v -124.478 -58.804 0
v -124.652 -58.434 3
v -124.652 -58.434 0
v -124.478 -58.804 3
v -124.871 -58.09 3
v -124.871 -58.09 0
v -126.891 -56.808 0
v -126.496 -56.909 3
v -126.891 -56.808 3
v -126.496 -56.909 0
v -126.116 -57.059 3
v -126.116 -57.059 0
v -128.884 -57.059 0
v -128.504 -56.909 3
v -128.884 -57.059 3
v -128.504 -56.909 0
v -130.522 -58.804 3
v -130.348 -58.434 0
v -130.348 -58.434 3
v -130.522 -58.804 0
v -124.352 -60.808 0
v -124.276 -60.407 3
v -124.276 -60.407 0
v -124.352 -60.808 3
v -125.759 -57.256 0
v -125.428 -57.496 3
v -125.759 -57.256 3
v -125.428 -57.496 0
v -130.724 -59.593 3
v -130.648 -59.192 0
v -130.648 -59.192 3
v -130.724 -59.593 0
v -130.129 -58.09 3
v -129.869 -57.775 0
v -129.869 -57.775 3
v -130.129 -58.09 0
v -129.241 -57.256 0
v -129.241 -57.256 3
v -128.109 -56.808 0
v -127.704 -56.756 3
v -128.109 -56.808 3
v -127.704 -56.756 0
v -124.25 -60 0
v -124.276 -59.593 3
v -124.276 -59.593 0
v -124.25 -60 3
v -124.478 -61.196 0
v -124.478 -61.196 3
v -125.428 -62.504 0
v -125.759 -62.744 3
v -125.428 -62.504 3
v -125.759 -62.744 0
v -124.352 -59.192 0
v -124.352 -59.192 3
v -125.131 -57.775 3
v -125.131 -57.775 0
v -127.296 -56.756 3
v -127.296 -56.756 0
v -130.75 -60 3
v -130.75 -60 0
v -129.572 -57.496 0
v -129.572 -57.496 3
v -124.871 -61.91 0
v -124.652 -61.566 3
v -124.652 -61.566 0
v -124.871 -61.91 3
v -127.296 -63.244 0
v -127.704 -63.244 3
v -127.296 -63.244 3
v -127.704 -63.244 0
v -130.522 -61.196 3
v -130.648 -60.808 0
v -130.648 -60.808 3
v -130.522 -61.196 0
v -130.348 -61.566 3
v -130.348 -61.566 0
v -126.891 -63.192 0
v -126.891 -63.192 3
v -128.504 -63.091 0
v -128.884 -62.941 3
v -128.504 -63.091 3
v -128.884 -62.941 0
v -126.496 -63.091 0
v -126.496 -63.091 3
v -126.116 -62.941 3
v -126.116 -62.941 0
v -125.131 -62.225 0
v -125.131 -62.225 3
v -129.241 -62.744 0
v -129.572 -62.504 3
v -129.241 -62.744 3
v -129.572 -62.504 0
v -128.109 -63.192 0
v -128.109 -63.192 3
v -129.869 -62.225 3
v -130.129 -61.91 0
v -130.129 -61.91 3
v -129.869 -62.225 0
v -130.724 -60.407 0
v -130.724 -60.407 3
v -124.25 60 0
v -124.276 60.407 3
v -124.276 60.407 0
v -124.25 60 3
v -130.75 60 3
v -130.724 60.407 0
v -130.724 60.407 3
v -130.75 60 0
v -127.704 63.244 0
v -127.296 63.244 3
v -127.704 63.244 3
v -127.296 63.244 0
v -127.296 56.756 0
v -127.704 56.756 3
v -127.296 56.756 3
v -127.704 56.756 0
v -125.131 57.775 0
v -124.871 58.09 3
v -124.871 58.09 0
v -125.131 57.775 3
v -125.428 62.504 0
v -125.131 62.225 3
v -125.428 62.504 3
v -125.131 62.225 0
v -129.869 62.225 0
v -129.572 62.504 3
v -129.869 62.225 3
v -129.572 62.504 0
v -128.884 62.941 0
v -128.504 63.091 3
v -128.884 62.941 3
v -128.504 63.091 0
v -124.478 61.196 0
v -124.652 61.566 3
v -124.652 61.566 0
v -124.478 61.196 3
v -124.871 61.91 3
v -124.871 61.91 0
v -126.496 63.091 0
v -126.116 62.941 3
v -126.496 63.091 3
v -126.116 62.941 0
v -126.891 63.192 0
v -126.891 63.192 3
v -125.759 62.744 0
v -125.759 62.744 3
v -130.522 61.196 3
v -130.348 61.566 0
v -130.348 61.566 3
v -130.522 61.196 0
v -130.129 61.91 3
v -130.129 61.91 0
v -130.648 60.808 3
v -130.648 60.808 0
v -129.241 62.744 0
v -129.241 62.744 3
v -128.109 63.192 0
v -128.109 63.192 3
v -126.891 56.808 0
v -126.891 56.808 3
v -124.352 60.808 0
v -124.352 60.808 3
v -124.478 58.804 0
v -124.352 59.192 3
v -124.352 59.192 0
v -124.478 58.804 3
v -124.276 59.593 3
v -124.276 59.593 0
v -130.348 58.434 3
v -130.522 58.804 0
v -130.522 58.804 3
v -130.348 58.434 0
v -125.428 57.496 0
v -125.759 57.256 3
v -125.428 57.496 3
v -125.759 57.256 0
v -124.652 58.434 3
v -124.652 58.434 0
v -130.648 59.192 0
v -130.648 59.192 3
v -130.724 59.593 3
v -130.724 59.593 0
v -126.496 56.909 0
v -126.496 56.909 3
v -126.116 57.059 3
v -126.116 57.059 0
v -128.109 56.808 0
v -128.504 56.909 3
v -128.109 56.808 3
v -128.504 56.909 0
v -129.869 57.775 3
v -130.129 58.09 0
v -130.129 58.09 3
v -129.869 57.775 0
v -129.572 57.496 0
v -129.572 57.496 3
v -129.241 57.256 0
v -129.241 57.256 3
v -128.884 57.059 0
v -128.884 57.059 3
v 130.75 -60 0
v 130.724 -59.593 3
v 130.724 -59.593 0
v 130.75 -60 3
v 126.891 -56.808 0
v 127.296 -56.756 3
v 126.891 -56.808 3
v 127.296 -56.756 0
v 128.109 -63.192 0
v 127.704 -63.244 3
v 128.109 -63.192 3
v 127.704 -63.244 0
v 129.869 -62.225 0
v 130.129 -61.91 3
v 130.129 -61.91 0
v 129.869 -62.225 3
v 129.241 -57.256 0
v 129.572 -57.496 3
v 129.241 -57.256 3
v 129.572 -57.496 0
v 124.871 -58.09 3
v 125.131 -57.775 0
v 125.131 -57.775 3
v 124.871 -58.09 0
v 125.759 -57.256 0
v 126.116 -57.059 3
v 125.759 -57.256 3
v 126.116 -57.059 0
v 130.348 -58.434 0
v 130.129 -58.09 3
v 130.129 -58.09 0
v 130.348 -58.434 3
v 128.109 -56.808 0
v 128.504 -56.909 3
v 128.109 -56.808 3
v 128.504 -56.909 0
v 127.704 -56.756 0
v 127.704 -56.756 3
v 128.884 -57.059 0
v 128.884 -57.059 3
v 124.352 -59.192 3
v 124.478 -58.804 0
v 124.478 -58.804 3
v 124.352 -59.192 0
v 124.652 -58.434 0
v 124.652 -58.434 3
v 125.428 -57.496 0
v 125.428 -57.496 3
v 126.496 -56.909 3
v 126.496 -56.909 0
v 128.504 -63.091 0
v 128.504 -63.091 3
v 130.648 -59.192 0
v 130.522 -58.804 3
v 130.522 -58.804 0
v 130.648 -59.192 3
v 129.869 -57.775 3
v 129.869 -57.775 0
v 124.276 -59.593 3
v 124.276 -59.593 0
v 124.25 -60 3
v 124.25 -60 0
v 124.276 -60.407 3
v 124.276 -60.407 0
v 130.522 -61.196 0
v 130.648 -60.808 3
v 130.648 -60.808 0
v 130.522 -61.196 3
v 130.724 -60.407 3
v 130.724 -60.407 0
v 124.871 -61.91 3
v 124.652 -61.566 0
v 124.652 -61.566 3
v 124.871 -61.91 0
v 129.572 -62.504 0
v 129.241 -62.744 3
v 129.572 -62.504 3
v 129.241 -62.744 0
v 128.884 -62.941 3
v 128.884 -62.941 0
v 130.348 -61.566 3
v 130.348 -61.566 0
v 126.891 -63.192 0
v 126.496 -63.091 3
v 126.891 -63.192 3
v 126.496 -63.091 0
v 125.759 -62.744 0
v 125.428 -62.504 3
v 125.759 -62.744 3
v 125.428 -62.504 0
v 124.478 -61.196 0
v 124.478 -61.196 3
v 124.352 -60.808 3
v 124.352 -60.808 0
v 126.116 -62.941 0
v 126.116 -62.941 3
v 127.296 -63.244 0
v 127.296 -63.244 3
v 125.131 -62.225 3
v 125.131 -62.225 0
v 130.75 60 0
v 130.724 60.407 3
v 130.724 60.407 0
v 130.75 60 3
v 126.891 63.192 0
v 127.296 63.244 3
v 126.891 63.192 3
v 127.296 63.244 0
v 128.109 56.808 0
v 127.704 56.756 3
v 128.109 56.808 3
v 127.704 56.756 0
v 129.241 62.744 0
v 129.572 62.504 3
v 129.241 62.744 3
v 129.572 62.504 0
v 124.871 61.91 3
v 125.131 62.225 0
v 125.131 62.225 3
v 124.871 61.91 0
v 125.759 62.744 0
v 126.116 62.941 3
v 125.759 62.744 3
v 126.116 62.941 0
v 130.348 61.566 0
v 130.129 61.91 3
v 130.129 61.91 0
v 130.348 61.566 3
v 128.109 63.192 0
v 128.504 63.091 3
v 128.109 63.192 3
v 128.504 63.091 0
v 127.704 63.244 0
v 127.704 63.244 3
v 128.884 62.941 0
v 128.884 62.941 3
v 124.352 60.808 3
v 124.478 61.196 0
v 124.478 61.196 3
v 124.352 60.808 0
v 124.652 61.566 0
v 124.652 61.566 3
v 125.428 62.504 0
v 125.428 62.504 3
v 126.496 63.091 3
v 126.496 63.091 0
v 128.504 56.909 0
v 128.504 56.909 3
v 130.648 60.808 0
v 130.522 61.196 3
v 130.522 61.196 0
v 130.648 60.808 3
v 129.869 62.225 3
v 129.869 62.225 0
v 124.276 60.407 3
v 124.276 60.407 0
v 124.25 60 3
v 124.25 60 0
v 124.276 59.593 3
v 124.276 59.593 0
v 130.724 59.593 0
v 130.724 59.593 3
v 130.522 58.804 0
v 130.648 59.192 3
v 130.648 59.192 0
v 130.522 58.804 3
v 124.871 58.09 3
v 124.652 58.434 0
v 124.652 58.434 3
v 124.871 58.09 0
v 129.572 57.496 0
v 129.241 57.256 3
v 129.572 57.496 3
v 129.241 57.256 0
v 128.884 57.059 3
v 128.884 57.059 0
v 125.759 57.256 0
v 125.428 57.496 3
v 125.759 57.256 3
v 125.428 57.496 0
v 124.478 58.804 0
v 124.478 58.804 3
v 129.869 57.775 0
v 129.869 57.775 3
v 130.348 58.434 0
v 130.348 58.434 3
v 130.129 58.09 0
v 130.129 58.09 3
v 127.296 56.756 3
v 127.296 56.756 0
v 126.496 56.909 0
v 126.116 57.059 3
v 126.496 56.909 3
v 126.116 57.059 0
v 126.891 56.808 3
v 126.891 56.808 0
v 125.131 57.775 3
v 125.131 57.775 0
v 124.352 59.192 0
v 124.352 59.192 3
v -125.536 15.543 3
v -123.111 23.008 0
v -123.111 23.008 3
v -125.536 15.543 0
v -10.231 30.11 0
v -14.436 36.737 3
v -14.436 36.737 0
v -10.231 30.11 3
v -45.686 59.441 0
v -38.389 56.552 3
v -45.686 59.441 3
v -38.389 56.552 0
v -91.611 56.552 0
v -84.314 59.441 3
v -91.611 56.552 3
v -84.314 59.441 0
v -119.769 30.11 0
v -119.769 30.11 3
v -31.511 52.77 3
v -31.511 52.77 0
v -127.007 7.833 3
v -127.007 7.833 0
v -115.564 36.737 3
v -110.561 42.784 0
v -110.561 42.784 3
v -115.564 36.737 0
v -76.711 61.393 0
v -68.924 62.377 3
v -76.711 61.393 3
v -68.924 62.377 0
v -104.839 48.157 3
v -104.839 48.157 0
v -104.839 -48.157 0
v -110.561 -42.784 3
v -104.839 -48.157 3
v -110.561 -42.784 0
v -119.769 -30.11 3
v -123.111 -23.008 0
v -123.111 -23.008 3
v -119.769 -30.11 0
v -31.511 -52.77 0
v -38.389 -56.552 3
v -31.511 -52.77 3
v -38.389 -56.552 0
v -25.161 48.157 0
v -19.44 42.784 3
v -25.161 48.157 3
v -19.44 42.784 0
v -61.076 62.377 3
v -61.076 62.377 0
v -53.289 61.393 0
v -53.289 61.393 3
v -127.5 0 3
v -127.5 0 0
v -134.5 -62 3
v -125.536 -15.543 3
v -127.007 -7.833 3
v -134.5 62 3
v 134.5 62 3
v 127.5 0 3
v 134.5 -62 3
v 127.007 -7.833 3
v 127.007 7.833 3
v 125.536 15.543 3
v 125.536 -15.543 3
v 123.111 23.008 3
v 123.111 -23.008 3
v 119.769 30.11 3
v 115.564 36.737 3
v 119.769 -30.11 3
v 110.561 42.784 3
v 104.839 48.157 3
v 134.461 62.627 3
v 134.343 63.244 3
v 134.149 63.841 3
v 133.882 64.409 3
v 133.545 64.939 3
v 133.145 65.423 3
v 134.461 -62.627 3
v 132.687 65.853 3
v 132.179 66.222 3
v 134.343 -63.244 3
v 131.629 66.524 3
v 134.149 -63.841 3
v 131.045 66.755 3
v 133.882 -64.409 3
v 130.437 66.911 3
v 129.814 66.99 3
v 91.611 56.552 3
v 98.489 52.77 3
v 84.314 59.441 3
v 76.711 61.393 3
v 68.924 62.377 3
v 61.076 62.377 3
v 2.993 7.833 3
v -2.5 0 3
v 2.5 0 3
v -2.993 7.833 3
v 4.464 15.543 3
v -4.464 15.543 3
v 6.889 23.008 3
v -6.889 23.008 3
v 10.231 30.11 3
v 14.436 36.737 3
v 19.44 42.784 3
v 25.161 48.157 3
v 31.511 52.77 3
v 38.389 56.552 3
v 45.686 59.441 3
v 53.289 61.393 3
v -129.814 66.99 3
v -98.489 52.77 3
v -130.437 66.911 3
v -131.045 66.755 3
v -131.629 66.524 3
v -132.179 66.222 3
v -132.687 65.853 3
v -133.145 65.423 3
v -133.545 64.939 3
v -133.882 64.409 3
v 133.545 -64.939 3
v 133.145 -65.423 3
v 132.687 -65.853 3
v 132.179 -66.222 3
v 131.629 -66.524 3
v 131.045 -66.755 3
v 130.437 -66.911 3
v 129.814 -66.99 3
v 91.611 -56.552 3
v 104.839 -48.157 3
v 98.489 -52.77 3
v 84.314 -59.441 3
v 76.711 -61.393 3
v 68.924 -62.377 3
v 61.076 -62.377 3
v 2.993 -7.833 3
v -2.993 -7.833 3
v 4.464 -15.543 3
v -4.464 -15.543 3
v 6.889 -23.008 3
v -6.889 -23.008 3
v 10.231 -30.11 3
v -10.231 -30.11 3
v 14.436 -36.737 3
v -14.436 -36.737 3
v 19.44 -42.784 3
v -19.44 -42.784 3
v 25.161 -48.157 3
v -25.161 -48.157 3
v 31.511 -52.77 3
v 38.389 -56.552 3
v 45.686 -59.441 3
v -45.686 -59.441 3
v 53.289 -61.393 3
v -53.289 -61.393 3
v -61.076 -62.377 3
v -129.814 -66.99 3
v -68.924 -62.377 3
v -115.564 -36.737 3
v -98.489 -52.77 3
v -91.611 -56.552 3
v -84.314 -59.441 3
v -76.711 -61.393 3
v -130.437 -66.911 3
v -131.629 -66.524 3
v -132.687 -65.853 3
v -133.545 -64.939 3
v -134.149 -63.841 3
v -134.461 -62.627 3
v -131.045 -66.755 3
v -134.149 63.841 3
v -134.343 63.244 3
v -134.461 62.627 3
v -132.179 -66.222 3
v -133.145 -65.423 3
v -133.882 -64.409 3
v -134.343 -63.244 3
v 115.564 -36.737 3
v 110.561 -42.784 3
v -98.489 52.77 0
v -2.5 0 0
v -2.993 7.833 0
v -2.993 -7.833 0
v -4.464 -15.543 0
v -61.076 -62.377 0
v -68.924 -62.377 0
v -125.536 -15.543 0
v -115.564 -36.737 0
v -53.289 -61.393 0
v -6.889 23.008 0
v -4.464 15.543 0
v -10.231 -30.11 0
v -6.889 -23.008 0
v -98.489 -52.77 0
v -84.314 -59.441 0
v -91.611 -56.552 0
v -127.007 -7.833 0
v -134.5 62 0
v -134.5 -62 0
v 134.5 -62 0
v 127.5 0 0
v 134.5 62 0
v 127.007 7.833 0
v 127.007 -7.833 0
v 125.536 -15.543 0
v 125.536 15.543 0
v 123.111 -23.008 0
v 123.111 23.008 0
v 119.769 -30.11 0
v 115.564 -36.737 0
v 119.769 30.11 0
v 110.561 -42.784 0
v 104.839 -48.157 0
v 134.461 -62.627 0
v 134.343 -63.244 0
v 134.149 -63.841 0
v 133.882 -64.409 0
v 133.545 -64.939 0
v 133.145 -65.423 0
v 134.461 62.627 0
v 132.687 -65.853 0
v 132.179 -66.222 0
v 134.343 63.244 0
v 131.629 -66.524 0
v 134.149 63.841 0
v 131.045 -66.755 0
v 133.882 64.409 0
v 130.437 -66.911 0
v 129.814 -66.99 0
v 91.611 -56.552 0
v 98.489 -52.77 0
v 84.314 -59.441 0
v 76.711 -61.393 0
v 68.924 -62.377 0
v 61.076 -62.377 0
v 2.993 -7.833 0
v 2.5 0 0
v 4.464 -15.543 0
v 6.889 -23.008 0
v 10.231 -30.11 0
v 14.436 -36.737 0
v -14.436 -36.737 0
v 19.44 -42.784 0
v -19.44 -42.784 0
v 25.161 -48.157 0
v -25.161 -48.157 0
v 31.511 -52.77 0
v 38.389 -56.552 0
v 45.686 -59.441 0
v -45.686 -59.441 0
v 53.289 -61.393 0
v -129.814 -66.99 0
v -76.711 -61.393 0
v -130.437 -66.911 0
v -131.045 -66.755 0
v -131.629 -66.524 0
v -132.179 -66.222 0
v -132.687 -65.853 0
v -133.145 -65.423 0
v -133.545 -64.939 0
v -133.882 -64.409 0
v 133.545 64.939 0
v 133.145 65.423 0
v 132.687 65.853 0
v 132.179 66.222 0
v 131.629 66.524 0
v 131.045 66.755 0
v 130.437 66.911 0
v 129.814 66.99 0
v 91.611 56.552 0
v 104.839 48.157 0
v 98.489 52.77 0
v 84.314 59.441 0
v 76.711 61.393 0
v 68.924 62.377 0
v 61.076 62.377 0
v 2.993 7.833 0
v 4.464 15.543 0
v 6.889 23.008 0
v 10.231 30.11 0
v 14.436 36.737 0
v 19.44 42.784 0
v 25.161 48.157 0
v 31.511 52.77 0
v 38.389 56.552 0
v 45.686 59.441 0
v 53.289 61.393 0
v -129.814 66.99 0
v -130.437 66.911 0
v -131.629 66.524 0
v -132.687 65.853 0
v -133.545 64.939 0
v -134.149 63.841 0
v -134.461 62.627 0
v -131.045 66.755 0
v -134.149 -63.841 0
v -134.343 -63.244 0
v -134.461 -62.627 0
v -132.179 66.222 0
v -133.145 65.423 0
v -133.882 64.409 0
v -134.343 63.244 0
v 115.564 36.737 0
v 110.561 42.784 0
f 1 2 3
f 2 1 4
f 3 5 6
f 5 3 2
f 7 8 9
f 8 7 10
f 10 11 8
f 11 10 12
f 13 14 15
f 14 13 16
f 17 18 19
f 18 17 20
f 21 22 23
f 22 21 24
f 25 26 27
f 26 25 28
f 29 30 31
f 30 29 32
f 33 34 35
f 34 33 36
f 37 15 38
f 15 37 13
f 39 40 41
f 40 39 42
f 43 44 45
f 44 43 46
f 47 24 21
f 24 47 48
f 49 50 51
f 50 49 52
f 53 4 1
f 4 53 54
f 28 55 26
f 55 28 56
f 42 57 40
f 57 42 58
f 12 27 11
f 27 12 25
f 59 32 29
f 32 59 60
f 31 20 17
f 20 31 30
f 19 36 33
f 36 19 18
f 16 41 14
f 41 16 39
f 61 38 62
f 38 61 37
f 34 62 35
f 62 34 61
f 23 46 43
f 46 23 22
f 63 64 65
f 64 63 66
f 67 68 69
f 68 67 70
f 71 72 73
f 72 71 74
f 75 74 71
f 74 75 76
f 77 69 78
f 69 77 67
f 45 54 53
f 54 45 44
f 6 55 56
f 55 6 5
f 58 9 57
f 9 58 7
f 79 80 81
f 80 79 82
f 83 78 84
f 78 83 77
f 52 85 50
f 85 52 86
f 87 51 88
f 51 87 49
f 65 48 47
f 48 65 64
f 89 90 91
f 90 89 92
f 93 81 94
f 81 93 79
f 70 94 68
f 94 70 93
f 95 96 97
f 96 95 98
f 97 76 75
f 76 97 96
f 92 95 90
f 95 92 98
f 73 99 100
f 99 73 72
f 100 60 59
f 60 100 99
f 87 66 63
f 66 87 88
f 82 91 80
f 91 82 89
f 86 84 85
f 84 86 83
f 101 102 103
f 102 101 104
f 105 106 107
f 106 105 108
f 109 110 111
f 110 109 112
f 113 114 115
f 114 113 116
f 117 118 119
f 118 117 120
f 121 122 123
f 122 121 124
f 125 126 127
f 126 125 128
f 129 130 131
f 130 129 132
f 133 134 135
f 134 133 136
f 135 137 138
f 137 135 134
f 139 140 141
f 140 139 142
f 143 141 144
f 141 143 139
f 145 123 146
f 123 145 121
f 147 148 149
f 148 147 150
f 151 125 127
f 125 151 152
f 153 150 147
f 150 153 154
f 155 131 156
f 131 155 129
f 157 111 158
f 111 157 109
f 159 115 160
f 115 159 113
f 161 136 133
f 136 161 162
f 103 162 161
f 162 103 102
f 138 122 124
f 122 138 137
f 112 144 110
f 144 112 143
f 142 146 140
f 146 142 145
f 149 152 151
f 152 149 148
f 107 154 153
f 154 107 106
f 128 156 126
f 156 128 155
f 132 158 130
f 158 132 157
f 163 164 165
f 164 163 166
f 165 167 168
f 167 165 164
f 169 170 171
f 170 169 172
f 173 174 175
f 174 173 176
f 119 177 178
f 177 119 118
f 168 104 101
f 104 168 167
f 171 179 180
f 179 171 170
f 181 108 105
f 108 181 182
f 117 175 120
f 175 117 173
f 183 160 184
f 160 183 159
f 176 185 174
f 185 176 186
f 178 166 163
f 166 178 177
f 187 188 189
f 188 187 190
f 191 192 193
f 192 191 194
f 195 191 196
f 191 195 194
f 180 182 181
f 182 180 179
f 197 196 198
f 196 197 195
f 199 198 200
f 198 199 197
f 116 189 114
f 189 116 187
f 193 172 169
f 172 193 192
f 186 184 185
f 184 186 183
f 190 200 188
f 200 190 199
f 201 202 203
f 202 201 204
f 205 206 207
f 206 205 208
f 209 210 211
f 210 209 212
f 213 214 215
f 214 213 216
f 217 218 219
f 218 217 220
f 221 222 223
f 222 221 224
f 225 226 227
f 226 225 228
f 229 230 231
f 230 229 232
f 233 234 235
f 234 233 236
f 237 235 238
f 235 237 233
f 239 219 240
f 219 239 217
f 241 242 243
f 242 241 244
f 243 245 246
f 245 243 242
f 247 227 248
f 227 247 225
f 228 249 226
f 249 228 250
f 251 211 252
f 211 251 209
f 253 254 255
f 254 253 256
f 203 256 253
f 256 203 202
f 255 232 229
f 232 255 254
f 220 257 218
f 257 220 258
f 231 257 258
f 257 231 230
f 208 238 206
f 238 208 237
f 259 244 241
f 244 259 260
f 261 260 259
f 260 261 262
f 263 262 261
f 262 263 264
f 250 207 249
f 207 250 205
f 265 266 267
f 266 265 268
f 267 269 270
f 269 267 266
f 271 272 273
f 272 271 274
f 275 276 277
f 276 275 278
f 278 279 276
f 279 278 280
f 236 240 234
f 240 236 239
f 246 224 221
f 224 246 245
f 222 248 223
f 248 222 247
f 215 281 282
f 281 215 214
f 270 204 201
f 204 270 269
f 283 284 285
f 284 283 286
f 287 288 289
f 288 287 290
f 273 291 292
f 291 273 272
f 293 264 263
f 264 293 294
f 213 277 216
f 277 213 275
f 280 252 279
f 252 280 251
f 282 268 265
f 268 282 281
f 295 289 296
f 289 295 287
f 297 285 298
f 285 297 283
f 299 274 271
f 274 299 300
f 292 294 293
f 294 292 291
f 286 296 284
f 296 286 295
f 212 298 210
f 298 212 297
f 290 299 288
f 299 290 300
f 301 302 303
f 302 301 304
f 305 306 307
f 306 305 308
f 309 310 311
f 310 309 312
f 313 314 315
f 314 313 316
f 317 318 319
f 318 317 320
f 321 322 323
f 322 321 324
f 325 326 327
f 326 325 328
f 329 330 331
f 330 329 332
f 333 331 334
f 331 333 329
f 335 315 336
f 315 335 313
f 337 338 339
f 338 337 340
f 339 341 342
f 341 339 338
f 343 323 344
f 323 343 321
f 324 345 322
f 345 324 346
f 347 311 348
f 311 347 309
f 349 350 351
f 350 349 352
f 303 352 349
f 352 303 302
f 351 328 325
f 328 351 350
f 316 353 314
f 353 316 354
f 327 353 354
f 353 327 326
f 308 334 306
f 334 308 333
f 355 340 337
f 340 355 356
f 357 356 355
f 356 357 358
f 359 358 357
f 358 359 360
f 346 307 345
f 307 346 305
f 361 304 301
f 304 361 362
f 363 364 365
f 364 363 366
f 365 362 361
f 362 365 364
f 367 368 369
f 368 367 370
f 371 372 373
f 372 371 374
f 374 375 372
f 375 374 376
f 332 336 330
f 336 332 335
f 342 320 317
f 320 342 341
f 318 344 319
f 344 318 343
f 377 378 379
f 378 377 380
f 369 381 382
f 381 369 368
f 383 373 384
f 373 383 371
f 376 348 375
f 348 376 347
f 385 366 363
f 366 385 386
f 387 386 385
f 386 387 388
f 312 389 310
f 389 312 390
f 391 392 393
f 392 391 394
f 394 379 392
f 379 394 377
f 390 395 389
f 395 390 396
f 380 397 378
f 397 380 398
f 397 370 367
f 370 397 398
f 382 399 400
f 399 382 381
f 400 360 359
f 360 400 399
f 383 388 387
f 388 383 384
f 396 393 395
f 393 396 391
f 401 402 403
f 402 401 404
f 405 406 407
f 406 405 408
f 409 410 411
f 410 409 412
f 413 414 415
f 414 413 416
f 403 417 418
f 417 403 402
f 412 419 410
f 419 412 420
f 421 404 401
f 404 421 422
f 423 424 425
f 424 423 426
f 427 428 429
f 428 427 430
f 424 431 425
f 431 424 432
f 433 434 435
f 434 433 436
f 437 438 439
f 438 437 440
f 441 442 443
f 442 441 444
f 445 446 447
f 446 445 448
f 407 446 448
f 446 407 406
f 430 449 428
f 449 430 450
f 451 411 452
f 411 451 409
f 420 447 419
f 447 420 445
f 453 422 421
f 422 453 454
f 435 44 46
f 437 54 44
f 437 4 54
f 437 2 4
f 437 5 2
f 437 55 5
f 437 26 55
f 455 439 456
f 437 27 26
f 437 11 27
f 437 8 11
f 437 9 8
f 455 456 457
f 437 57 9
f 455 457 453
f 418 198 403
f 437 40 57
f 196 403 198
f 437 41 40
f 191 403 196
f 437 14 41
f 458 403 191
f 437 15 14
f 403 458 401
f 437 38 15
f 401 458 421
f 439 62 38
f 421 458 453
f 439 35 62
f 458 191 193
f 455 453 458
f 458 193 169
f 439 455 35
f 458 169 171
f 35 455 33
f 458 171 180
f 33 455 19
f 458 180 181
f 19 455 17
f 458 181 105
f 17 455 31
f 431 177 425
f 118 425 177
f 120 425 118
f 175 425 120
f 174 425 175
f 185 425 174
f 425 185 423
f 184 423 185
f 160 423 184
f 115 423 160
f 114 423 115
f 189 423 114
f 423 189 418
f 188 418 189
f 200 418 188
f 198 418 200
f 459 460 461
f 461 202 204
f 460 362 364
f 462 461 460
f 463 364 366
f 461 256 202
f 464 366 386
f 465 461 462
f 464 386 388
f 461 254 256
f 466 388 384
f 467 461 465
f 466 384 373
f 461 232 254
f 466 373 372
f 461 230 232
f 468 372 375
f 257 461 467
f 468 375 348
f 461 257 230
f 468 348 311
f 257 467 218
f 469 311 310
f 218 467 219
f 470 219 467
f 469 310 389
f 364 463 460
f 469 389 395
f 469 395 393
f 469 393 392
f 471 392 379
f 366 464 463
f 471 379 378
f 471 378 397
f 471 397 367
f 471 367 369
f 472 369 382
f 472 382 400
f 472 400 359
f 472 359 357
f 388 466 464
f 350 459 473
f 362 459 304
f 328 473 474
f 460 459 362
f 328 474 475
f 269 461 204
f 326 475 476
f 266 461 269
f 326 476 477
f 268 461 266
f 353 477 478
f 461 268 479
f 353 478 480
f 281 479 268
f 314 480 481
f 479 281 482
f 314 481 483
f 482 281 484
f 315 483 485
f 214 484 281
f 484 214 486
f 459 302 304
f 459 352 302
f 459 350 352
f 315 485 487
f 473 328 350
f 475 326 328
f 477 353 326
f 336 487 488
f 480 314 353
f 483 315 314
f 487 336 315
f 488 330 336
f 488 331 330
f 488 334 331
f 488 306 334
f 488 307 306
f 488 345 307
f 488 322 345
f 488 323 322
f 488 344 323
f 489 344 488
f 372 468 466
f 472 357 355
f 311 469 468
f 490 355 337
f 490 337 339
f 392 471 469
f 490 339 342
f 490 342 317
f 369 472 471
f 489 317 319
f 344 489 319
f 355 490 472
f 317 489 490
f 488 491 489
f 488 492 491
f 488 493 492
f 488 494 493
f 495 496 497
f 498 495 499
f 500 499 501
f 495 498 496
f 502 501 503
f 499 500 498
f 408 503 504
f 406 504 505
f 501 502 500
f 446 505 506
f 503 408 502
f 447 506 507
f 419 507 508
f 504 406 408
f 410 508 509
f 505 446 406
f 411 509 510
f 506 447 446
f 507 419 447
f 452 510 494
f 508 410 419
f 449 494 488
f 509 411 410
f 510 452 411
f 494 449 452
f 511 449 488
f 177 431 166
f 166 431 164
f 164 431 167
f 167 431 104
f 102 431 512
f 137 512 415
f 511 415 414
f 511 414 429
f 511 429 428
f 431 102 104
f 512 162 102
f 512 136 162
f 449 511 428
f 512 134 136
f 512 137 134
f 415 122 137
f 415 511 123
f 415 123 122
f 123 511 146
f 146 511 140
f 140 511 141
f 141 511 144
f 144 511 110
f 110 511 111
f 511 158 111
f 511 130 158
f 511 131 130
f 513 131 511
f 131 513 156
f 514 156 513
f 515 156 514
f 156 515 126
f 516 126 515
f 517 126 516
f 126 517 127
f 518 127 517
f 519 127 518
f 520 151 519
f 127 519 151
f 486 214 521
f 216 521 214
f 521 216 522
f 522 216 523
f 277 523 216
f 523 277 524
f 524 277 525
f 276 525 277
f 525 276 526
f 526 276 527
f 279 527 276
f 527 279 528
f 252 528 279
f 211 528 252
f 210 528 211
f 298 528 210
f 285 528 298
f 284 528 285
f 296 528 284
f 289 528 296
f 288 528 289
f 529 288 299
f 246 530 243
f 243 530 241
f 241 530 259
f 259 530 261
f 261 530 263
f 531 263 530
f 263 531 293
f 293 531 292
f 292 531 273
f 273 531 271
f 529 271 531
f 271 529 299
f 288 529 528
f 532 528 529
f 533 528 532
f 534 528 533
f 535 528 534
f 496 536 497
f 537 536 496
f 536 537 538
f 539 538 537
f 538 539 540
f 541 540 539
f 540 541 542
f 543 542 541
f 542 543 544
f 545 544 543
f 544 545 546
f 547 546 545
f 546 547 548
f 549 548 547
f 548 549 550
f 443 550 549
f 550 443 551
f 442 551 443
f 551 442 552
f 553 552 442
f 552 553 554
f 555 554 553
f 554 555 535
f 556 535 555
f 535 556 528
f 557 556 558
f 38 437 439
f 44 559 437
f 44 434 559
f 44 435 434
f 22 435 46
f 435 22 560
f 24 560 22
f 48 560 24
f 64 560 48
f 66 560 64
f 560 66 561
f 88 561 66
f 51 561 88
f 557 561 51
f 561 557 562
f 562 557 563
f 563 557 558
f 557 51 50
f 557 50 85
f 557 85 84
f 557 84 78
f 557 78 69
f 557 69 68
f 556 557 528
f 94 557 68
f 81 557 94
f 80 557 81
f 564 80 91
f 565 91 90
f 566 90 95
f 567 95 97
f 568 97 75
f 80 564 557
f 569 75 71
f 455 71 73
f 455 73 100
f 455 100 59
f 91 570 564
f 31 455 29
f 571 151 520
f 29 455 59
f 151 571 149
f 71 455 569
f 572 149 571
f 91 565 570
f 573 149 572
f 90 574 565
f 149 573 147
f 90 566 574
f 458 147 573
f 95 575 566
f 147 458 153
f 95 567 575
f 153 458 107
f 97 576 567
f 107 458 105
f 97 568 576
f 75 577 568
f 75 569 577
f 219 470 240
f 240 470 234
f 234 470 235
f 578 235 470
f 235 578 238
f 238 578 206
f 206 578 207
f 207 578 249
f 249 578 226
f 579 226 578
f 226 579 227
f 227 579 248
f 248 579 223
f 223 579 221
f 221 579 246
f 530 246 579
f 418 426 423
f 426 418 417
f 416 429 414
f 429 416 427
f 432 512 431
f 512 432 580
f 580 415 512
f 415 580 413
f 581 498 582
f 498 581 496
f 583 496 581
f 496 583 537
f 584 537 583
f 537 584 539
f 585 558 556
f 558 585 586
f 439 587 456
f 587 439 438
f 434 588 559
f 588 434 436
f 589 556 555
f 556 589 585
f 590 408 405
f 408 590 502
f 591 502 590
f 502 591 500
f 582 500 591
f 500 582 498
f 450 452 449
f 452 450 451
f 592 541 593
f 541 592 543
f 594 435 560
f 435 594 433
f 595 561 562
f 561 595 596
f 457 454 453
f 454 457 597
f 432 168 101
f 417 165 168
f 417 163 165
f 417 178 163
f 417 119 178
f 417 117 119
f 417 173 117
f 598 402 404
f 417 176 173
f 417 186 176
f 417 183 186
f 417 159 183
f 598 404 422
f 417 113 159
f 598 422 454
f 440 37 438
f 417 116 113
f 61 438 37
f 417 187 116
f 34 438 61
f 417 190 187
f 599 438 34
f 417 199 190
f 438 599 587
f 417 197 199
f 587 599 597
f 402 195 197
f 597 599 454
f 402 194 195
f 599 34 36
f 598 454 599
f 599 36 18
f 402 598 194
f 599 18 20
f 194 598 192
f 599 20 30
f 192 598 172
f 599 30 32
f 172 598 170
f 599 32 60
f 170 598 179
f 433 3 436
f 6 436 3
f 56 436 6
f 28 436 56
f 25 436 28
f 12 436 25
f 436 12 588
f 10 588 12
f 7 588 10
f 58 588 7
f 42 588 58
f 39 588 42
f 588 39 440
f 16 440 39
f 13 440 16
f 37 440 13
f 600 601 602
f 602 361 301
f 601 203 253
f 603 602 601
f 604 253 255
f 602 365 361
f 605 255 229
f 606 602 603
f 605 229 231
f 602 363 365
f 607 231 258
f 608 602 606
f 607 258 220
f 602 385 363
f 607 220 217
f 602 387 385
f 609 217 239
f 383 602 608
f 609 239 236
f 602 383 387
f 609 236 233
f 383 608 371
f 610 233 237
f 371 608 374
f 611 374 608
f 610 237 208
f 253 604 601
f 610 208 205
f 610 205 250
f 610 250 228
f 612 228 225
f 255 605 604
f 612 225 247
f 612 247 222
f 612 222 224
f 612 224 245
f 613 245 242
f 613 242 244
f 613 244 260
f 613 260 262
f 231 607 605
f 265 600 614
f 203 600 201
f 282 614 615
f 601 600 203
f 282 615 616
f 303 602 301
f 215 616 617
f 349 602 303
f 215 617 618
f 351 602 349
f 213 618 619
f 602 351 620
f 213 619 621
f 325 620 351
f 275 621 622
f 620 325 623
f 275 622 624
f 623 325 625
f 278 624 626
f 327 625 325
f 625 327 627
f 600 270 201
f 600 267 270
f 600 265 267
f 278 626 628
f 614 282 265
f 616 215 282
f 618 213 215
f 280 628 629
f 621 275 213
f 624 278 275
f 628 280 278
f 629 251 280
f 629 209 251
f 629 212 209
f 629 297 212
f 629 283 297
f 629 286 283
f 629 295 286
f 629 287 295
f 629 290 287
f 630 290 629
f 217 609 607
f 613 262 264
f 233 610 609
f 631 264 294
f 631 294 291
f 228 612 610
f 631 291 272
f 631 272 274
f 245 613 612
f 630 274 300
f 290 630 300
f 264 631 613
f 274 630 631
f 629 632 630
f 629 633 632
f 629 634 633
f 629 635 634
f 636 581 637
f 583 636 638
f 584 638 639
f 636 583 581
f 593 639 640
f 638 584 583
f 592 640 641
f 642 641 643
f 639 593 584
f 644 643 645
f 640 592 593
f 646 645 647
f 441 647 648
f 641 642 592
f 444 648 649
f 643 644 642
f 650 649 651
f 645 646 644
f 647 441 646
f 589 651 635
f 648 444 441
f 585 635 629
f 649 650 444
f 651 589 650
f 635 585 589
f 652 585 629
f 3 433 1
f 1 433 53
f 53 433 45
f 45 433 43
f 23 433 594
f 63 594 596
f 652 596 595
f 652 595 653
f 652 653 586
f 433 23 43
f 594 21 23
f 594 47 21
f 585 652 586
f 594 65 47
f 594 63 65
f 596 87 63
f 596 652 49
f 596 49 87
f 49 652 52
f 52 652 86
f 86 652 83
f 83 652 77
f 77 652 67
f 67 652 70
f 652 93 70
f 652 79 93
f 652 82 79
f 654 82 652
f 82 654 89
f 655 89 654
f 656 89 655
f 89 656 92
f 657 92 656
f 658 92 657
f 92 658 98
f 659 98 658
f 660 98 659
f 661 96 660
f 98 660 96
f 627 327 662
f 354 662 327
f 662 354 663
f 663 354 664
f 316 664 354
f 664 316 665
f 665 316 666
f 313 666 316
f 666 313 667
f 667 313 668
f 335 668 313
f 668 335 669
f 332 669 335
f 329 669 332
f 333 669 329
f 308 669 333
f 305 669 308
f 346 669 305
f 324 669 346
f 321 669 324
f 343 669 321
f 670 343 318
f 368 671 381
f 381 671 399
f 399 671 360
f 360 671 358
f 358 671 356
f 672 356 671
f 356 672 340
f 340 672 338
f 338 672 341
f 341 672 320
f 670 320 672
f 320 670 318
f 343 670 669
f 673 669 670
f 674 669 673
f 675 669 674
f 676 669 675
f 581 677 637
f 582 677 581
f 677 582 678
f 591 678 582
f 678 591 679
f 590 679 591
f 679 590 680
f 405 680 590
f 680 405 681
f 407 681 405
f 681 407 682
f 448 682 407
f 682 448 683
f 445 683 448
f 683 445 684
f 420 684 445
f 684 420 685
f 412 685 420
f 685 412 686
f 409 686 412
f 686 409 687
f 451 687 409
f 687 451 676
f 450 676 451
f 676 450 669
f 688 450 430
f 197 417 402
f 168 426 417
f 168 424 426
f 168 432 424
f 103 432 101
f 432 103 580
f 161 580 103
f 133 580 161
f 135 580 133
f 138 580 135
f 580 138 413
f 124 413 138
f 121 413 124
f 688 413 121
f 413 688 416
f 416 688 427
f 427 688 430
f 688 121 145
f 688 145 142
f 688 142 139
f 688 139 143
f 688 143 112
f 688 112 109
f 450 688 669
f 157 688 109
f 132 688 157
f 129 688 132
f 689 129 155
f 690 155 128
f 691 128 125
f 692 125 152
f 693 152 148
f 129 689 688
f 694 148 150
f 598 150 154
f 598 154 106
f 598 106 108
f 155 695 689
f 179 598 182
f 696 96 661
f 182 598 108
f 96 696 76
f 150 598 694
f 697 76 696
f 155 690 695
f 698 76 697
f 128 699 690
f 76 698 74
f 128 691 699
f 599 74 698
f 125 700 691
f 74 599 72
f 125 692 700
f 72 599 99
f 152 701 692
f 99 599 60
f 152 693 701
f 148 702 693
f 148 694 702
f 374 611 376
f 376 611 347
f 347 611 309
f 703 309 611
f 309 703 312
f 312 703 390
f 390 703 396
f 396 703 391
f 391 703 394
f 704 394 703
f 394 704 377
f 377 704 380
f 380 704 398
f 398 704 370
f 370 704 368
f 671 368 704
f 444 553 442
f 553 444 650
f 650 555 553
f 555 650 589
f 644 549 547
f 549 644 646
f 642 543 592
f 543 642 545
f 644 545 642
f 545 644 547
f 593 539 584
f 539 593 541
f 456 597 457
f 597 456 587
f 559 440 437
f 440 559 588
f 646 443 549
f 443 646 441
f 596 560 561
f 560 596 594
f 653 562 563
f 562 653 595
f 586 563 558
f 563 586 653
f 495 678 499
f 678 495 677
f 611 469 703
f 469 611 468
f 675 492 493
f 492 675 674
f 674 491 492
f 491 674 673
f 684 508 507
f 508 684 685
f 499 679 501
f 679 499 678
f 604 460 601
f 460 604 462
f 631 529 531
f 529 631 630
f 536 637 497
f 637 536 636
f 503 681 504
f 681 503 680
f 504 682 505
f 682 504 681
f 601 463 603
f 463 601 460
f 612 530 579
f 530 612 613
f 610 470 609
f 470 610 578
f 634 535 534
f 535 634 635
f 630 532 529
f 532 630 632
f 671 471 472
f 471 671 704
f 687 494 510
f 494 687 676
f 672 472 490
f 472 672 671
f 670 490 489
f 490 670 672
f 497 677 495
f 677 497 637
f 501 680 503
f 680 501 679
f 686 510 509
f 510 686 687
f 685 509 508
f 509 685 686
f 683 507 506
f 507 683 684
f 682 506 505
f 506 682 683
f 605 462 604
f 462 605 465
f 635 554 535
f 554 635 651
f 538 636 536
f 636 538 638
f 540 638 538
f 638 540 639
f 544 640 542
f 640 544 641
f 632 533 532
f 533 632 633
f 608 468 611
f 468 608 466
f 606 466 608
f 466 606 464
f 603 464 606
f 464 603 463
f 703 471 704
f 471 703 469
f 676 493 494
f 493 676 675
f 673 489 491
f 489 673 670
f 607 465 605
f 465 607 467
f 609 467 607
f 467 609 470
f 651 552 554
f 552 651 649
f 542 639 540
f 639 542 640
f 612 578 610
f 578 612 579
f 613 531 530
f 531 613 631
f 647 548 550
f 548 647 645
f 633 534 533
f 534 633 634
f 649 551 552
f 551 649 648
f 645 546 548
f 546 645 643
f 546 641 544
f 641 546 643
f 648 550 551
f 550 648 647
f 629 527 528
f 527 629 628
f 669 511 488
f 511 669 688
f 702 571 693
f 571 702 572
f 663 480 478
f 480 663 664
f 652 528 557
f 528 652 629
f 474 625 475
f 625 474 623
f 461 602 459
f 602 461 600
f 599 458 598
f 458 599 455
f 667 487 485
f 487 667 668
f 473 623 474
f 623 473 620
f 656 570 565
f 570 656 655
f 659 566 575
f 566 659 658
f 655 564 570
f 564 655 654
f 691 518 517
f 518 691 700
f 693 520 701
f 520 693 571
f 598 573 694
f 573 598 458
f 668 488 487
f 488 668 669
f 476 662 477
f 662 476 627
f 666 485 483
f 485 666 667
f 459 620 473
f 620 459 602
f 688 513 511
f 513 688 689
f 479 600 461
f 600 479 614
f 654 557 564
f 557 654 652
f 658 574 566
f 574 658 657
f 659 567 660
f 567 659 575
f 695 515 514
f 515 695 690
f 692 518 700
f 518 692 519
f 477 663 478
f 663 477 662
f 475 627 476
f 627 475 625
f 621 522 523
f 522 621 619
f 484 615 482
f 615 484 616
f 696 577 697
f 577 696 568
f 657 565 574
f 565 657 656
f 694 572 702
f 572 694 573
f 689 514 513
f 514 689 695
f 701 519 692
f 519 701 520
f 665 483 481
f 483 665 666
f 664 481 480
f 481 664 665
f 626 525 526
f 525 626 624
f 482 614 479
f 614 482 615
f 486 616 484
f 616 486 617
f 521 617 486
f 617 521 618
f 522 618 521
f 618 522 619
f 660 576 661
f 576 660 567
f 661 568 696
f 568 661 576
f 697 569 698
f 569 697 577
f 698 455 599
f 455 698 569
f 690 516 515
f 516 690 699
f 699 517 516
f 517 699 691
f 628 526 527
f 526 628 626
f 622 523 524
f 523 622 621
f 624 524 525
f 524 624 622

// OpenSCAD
$fn = 50;


difference() {
	union() {
		hull() {
			translate(v = [-129.5000000000, 62.0000000000, 0]) {
				cylinder(h = 3, r = 5);
			}
			translate(v = [129.5000000000, 62.0000000000, 0]) {
				cylinder(h = 3, r = 5);
			}
			translate(v = [-129.5000000000, -62.0000000000, 0]) {
				cylinder(h = 3, r = 5);
			}
			translate(v = [129.5000000000, -62.0000000000, 0]) {
				cylinder(h = 3, r = 5);
			}
		}
	}
	union() {
		#translate(v = [-127.5000000000, -60.0000000000, -100.0000000000]) {
			cylinder(h = 200, r = 3.2500000000);
		}
		#translate(v = [-127.5000000000, 60.0000000000, -100.0000000000]) {
			cylinder(h = 200, r = 3.2500000000);
		}
		#translate(v = [127.5000000000, -60.0000000000, -100.0000000000]) {
			cylinder(h = 200, r = 3.2500000000);
		}
		#translate(v = [127.5000000000, 60.0000000000, -100.0000000000]) {
			cylinder(h = 200, r = 3.2500000000);
		}
		#translate(v = [-65.0000000000, 0, 0]) {
			cylinder(h = 3, r = 62.5000000000);
		}
		#translate(v = [65.0000000000, 0, 0]) {
			cylinder(h = 3, r = 62.5000000000);
		}
	}
}
